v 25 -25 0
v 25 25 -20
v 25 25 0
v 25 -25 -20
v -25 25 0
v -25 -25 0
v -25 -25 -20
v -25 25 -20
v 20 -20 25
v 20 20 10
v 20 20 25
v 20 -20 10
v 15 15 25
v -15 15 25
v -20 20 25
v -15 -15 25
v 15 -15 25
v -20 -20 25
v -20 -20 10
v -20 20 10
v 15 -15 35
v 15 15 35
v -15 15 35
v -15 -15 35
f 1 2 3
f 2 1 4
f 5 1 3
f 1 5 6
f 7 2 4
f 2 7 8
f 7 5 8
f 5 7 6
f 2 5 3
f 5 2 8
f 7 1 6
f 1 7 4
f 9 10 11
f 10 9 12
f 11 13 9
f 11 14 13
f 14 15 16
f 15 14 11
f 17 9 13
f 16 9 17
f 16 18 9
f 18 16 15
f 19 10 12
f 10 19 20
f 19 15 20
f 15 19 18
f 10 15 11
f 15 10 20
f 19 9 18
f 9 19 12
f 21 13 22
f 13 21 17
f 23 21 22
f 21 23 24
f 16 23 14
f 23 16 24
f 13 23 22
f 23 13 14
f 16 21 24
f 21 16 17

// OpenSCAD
// Define dimensions for each block
base_block_width = 50;
base_block_depth = 50;
base_block_height = 20;

intermediate_block_width = 40;
intermediate_block_depth = 40;
intermediate_block_height = 15;

top_block_width = 30;
top_block_depth = 30;
top_block_height = 10;

// Base block
module base_block() {
    cube([base_block_width, base_block_depth, base_block_height], center = true);
}

// Intermediate block
module intermediate_block() {
    cube([intermediate_block_width, intermediate_block_depth, intermediate_block_height], center = true);
}

// Top block
module top_block() {
    cube([top_block_width, top_block_depth, top_block_height], center = true);
}

// Assemble the model
module flexible_coupling() {
    // Layer 3: Base block
    translate([0, 0, -base_block_height / 2])
        base_block();

    // Layer 2: Intermediate block
    translate([0, 0, base_block_height / 2 + intermediate_block_height / 2])
        intermediate_block();

    // Layer 1: Top block
    translate([0, 0, base_block_height / 2 + intermediate_block_height + top_block_height / 2])
        top_block();
}

// Render the model
flexible_coupling();
